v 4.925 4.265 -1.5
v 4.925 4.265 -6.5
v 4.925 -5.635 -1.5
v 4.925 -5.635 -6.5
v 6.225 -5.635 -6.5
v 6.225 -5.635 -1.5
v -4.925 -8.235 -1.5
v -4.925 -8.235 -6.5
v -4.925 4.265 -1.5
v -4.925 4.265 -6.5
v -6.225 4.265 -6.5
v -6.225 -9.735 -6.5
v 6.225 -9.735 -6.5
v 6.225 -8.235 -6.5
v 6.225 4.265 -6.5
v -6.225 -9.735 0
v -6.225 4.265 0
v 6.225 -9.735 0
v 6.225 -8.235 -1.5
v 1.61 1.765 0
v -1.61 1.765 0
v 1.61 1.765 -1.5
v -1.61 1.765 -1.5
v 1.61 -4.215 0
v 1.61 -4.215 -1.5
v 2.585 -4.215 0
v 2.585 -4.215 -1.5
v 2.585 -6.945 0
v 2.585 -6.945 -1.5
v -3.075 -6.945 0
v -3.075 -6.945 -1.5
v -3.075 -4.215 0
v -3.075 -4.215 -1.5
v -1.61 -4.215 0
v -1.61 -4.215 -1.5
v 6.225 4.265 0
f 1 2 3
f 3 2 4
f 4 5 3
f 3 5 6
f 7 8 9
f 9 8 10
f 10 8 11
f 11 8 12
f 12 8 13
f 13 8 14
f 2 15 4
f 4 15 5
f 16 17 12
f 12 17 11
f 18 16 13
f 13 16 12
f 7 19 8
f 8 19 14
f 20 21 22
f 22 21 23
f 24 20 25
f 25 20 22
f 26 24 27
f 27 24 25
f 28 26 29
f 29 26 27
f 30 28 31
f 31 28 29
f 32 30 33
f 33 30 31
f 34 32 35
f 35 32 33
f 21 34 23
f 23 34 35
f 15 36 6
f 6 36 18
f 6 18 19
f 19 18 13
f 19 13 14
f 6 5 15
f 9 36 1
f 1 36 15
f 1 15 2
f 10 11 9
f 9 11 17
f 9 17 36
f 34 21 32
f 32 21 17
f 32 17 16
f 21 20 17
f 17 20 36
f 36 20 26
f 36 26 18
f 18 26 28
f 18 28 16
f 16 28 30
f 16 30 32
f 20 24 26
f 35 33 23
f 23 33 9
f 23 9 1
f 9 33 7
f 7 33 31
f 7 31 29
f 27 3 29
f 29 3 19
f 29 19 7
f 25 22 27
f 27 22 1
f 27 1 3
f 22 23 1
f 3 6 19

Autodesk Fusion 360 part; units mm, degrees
sketch "Boceto1" plane through (0, 0, 0) normal (0, 0, 1) x (1, 0, 0)
  line L0 (4.725, 2.765) -> (4.725, -5.635)
  line L1 (4.725, -8.235) -> (-4.725, -8.235)
  line L2 (-4.725, -8.235) -> (-4.725, 2.765)
  line L3 (-6.225, 4.265) -> (6.225, 4.265)
  line L4 (6.225, 4.265) -> (6.225, -9.735)
  line L5 (6.225, -9.735) -> (-6.225, -9.735)
  line L6 (-6.225, -9.735) -> (-6.225, 4.265)
  line L7 (2.585, -4.215) -> (2.585, -6.945)
  line L8 (2.585, -6.945) -> (-3.075, -6.945)
  line L9 (-3.075, -6.945) -> (-3.075, -4.215)
  line L10 (-1.61, -4.215) -> (-1.61, 1.765)
  line L11 (1.61, 1.765) -> (1.61, -4.215)
  line L12 (-3.075, -4.215) -> (-1.61, -4.215)
  line L13 (1.61, -4.215) -> (2.585, -4.215)
  line L14 (-4.725, 2.765) -> (-4.725, 4.265)
  line L15 (4.725, 4.265) -> (4.725, 2.765)
  line L16 (4.725, -5.635) -> (6.225, -5.635)
  line L17 (4.725, -8.235) -> (6.225, -8.235)
  line L18 (-1.61, 1.765) -> (1.61, 1.765)
  dimension "d1" = 9.45
  dimension "d2" = 4.725
  dimension "d3" = 1.5
  dimension "d4" = 1.5
  dimension "d5" = 1.5
  dimension "d6" = 1.5
  dimension "d9" = 8.235
  dimension "d10" = 5.66
  dimension "d11" = 2.73
  dimension "d12" = 1.29
  dimension "d13" = 1.65
  dimension "d21" = 10
  dimension "d22" = 12.5
  dimension "d27" = 2.6
  dimension "d32" = 3.115
  dimension "d33" = 3.115
extrude "Extruir5" add sketch "Boceto1" against normal blind 1.5 contours L0 L1 L2 L3 L4 L14 L15 L16 L17
extrude "Extruir6" add sketch "Boceto1" against normal blind 6.5 contours L0 L3 L4 L15 L16 | L1 L2 L3 L4 L5 L6 L14 L17
extrude "Extruir7" cut 1 faces at (-4.725, -4.0683, -3.1667) along direction (-1, 0, 0) blind 0.2
extrude "Extruir8" cut 1 faces at (4.725, 0.965, -3.1667) along direction (1, 0, 0) blind 0.2
equation "d2 = d1 / 2"
equation "d4 = d3"
equation "d5 = d3"
equation "d6 = d3"
equation "d7 = 16.47 mm"
equation "d9 = d7 / 2"
equation "d22 = d21 + d3 + 1 mm"
equation "d28 = -d3"
equation "d30 = -( d3 + 5 mm )"
equation "d32 = d1 / 2 - ( ( 3.22 / 2 ) * 1 mm )"
equation "d33 = d32"
